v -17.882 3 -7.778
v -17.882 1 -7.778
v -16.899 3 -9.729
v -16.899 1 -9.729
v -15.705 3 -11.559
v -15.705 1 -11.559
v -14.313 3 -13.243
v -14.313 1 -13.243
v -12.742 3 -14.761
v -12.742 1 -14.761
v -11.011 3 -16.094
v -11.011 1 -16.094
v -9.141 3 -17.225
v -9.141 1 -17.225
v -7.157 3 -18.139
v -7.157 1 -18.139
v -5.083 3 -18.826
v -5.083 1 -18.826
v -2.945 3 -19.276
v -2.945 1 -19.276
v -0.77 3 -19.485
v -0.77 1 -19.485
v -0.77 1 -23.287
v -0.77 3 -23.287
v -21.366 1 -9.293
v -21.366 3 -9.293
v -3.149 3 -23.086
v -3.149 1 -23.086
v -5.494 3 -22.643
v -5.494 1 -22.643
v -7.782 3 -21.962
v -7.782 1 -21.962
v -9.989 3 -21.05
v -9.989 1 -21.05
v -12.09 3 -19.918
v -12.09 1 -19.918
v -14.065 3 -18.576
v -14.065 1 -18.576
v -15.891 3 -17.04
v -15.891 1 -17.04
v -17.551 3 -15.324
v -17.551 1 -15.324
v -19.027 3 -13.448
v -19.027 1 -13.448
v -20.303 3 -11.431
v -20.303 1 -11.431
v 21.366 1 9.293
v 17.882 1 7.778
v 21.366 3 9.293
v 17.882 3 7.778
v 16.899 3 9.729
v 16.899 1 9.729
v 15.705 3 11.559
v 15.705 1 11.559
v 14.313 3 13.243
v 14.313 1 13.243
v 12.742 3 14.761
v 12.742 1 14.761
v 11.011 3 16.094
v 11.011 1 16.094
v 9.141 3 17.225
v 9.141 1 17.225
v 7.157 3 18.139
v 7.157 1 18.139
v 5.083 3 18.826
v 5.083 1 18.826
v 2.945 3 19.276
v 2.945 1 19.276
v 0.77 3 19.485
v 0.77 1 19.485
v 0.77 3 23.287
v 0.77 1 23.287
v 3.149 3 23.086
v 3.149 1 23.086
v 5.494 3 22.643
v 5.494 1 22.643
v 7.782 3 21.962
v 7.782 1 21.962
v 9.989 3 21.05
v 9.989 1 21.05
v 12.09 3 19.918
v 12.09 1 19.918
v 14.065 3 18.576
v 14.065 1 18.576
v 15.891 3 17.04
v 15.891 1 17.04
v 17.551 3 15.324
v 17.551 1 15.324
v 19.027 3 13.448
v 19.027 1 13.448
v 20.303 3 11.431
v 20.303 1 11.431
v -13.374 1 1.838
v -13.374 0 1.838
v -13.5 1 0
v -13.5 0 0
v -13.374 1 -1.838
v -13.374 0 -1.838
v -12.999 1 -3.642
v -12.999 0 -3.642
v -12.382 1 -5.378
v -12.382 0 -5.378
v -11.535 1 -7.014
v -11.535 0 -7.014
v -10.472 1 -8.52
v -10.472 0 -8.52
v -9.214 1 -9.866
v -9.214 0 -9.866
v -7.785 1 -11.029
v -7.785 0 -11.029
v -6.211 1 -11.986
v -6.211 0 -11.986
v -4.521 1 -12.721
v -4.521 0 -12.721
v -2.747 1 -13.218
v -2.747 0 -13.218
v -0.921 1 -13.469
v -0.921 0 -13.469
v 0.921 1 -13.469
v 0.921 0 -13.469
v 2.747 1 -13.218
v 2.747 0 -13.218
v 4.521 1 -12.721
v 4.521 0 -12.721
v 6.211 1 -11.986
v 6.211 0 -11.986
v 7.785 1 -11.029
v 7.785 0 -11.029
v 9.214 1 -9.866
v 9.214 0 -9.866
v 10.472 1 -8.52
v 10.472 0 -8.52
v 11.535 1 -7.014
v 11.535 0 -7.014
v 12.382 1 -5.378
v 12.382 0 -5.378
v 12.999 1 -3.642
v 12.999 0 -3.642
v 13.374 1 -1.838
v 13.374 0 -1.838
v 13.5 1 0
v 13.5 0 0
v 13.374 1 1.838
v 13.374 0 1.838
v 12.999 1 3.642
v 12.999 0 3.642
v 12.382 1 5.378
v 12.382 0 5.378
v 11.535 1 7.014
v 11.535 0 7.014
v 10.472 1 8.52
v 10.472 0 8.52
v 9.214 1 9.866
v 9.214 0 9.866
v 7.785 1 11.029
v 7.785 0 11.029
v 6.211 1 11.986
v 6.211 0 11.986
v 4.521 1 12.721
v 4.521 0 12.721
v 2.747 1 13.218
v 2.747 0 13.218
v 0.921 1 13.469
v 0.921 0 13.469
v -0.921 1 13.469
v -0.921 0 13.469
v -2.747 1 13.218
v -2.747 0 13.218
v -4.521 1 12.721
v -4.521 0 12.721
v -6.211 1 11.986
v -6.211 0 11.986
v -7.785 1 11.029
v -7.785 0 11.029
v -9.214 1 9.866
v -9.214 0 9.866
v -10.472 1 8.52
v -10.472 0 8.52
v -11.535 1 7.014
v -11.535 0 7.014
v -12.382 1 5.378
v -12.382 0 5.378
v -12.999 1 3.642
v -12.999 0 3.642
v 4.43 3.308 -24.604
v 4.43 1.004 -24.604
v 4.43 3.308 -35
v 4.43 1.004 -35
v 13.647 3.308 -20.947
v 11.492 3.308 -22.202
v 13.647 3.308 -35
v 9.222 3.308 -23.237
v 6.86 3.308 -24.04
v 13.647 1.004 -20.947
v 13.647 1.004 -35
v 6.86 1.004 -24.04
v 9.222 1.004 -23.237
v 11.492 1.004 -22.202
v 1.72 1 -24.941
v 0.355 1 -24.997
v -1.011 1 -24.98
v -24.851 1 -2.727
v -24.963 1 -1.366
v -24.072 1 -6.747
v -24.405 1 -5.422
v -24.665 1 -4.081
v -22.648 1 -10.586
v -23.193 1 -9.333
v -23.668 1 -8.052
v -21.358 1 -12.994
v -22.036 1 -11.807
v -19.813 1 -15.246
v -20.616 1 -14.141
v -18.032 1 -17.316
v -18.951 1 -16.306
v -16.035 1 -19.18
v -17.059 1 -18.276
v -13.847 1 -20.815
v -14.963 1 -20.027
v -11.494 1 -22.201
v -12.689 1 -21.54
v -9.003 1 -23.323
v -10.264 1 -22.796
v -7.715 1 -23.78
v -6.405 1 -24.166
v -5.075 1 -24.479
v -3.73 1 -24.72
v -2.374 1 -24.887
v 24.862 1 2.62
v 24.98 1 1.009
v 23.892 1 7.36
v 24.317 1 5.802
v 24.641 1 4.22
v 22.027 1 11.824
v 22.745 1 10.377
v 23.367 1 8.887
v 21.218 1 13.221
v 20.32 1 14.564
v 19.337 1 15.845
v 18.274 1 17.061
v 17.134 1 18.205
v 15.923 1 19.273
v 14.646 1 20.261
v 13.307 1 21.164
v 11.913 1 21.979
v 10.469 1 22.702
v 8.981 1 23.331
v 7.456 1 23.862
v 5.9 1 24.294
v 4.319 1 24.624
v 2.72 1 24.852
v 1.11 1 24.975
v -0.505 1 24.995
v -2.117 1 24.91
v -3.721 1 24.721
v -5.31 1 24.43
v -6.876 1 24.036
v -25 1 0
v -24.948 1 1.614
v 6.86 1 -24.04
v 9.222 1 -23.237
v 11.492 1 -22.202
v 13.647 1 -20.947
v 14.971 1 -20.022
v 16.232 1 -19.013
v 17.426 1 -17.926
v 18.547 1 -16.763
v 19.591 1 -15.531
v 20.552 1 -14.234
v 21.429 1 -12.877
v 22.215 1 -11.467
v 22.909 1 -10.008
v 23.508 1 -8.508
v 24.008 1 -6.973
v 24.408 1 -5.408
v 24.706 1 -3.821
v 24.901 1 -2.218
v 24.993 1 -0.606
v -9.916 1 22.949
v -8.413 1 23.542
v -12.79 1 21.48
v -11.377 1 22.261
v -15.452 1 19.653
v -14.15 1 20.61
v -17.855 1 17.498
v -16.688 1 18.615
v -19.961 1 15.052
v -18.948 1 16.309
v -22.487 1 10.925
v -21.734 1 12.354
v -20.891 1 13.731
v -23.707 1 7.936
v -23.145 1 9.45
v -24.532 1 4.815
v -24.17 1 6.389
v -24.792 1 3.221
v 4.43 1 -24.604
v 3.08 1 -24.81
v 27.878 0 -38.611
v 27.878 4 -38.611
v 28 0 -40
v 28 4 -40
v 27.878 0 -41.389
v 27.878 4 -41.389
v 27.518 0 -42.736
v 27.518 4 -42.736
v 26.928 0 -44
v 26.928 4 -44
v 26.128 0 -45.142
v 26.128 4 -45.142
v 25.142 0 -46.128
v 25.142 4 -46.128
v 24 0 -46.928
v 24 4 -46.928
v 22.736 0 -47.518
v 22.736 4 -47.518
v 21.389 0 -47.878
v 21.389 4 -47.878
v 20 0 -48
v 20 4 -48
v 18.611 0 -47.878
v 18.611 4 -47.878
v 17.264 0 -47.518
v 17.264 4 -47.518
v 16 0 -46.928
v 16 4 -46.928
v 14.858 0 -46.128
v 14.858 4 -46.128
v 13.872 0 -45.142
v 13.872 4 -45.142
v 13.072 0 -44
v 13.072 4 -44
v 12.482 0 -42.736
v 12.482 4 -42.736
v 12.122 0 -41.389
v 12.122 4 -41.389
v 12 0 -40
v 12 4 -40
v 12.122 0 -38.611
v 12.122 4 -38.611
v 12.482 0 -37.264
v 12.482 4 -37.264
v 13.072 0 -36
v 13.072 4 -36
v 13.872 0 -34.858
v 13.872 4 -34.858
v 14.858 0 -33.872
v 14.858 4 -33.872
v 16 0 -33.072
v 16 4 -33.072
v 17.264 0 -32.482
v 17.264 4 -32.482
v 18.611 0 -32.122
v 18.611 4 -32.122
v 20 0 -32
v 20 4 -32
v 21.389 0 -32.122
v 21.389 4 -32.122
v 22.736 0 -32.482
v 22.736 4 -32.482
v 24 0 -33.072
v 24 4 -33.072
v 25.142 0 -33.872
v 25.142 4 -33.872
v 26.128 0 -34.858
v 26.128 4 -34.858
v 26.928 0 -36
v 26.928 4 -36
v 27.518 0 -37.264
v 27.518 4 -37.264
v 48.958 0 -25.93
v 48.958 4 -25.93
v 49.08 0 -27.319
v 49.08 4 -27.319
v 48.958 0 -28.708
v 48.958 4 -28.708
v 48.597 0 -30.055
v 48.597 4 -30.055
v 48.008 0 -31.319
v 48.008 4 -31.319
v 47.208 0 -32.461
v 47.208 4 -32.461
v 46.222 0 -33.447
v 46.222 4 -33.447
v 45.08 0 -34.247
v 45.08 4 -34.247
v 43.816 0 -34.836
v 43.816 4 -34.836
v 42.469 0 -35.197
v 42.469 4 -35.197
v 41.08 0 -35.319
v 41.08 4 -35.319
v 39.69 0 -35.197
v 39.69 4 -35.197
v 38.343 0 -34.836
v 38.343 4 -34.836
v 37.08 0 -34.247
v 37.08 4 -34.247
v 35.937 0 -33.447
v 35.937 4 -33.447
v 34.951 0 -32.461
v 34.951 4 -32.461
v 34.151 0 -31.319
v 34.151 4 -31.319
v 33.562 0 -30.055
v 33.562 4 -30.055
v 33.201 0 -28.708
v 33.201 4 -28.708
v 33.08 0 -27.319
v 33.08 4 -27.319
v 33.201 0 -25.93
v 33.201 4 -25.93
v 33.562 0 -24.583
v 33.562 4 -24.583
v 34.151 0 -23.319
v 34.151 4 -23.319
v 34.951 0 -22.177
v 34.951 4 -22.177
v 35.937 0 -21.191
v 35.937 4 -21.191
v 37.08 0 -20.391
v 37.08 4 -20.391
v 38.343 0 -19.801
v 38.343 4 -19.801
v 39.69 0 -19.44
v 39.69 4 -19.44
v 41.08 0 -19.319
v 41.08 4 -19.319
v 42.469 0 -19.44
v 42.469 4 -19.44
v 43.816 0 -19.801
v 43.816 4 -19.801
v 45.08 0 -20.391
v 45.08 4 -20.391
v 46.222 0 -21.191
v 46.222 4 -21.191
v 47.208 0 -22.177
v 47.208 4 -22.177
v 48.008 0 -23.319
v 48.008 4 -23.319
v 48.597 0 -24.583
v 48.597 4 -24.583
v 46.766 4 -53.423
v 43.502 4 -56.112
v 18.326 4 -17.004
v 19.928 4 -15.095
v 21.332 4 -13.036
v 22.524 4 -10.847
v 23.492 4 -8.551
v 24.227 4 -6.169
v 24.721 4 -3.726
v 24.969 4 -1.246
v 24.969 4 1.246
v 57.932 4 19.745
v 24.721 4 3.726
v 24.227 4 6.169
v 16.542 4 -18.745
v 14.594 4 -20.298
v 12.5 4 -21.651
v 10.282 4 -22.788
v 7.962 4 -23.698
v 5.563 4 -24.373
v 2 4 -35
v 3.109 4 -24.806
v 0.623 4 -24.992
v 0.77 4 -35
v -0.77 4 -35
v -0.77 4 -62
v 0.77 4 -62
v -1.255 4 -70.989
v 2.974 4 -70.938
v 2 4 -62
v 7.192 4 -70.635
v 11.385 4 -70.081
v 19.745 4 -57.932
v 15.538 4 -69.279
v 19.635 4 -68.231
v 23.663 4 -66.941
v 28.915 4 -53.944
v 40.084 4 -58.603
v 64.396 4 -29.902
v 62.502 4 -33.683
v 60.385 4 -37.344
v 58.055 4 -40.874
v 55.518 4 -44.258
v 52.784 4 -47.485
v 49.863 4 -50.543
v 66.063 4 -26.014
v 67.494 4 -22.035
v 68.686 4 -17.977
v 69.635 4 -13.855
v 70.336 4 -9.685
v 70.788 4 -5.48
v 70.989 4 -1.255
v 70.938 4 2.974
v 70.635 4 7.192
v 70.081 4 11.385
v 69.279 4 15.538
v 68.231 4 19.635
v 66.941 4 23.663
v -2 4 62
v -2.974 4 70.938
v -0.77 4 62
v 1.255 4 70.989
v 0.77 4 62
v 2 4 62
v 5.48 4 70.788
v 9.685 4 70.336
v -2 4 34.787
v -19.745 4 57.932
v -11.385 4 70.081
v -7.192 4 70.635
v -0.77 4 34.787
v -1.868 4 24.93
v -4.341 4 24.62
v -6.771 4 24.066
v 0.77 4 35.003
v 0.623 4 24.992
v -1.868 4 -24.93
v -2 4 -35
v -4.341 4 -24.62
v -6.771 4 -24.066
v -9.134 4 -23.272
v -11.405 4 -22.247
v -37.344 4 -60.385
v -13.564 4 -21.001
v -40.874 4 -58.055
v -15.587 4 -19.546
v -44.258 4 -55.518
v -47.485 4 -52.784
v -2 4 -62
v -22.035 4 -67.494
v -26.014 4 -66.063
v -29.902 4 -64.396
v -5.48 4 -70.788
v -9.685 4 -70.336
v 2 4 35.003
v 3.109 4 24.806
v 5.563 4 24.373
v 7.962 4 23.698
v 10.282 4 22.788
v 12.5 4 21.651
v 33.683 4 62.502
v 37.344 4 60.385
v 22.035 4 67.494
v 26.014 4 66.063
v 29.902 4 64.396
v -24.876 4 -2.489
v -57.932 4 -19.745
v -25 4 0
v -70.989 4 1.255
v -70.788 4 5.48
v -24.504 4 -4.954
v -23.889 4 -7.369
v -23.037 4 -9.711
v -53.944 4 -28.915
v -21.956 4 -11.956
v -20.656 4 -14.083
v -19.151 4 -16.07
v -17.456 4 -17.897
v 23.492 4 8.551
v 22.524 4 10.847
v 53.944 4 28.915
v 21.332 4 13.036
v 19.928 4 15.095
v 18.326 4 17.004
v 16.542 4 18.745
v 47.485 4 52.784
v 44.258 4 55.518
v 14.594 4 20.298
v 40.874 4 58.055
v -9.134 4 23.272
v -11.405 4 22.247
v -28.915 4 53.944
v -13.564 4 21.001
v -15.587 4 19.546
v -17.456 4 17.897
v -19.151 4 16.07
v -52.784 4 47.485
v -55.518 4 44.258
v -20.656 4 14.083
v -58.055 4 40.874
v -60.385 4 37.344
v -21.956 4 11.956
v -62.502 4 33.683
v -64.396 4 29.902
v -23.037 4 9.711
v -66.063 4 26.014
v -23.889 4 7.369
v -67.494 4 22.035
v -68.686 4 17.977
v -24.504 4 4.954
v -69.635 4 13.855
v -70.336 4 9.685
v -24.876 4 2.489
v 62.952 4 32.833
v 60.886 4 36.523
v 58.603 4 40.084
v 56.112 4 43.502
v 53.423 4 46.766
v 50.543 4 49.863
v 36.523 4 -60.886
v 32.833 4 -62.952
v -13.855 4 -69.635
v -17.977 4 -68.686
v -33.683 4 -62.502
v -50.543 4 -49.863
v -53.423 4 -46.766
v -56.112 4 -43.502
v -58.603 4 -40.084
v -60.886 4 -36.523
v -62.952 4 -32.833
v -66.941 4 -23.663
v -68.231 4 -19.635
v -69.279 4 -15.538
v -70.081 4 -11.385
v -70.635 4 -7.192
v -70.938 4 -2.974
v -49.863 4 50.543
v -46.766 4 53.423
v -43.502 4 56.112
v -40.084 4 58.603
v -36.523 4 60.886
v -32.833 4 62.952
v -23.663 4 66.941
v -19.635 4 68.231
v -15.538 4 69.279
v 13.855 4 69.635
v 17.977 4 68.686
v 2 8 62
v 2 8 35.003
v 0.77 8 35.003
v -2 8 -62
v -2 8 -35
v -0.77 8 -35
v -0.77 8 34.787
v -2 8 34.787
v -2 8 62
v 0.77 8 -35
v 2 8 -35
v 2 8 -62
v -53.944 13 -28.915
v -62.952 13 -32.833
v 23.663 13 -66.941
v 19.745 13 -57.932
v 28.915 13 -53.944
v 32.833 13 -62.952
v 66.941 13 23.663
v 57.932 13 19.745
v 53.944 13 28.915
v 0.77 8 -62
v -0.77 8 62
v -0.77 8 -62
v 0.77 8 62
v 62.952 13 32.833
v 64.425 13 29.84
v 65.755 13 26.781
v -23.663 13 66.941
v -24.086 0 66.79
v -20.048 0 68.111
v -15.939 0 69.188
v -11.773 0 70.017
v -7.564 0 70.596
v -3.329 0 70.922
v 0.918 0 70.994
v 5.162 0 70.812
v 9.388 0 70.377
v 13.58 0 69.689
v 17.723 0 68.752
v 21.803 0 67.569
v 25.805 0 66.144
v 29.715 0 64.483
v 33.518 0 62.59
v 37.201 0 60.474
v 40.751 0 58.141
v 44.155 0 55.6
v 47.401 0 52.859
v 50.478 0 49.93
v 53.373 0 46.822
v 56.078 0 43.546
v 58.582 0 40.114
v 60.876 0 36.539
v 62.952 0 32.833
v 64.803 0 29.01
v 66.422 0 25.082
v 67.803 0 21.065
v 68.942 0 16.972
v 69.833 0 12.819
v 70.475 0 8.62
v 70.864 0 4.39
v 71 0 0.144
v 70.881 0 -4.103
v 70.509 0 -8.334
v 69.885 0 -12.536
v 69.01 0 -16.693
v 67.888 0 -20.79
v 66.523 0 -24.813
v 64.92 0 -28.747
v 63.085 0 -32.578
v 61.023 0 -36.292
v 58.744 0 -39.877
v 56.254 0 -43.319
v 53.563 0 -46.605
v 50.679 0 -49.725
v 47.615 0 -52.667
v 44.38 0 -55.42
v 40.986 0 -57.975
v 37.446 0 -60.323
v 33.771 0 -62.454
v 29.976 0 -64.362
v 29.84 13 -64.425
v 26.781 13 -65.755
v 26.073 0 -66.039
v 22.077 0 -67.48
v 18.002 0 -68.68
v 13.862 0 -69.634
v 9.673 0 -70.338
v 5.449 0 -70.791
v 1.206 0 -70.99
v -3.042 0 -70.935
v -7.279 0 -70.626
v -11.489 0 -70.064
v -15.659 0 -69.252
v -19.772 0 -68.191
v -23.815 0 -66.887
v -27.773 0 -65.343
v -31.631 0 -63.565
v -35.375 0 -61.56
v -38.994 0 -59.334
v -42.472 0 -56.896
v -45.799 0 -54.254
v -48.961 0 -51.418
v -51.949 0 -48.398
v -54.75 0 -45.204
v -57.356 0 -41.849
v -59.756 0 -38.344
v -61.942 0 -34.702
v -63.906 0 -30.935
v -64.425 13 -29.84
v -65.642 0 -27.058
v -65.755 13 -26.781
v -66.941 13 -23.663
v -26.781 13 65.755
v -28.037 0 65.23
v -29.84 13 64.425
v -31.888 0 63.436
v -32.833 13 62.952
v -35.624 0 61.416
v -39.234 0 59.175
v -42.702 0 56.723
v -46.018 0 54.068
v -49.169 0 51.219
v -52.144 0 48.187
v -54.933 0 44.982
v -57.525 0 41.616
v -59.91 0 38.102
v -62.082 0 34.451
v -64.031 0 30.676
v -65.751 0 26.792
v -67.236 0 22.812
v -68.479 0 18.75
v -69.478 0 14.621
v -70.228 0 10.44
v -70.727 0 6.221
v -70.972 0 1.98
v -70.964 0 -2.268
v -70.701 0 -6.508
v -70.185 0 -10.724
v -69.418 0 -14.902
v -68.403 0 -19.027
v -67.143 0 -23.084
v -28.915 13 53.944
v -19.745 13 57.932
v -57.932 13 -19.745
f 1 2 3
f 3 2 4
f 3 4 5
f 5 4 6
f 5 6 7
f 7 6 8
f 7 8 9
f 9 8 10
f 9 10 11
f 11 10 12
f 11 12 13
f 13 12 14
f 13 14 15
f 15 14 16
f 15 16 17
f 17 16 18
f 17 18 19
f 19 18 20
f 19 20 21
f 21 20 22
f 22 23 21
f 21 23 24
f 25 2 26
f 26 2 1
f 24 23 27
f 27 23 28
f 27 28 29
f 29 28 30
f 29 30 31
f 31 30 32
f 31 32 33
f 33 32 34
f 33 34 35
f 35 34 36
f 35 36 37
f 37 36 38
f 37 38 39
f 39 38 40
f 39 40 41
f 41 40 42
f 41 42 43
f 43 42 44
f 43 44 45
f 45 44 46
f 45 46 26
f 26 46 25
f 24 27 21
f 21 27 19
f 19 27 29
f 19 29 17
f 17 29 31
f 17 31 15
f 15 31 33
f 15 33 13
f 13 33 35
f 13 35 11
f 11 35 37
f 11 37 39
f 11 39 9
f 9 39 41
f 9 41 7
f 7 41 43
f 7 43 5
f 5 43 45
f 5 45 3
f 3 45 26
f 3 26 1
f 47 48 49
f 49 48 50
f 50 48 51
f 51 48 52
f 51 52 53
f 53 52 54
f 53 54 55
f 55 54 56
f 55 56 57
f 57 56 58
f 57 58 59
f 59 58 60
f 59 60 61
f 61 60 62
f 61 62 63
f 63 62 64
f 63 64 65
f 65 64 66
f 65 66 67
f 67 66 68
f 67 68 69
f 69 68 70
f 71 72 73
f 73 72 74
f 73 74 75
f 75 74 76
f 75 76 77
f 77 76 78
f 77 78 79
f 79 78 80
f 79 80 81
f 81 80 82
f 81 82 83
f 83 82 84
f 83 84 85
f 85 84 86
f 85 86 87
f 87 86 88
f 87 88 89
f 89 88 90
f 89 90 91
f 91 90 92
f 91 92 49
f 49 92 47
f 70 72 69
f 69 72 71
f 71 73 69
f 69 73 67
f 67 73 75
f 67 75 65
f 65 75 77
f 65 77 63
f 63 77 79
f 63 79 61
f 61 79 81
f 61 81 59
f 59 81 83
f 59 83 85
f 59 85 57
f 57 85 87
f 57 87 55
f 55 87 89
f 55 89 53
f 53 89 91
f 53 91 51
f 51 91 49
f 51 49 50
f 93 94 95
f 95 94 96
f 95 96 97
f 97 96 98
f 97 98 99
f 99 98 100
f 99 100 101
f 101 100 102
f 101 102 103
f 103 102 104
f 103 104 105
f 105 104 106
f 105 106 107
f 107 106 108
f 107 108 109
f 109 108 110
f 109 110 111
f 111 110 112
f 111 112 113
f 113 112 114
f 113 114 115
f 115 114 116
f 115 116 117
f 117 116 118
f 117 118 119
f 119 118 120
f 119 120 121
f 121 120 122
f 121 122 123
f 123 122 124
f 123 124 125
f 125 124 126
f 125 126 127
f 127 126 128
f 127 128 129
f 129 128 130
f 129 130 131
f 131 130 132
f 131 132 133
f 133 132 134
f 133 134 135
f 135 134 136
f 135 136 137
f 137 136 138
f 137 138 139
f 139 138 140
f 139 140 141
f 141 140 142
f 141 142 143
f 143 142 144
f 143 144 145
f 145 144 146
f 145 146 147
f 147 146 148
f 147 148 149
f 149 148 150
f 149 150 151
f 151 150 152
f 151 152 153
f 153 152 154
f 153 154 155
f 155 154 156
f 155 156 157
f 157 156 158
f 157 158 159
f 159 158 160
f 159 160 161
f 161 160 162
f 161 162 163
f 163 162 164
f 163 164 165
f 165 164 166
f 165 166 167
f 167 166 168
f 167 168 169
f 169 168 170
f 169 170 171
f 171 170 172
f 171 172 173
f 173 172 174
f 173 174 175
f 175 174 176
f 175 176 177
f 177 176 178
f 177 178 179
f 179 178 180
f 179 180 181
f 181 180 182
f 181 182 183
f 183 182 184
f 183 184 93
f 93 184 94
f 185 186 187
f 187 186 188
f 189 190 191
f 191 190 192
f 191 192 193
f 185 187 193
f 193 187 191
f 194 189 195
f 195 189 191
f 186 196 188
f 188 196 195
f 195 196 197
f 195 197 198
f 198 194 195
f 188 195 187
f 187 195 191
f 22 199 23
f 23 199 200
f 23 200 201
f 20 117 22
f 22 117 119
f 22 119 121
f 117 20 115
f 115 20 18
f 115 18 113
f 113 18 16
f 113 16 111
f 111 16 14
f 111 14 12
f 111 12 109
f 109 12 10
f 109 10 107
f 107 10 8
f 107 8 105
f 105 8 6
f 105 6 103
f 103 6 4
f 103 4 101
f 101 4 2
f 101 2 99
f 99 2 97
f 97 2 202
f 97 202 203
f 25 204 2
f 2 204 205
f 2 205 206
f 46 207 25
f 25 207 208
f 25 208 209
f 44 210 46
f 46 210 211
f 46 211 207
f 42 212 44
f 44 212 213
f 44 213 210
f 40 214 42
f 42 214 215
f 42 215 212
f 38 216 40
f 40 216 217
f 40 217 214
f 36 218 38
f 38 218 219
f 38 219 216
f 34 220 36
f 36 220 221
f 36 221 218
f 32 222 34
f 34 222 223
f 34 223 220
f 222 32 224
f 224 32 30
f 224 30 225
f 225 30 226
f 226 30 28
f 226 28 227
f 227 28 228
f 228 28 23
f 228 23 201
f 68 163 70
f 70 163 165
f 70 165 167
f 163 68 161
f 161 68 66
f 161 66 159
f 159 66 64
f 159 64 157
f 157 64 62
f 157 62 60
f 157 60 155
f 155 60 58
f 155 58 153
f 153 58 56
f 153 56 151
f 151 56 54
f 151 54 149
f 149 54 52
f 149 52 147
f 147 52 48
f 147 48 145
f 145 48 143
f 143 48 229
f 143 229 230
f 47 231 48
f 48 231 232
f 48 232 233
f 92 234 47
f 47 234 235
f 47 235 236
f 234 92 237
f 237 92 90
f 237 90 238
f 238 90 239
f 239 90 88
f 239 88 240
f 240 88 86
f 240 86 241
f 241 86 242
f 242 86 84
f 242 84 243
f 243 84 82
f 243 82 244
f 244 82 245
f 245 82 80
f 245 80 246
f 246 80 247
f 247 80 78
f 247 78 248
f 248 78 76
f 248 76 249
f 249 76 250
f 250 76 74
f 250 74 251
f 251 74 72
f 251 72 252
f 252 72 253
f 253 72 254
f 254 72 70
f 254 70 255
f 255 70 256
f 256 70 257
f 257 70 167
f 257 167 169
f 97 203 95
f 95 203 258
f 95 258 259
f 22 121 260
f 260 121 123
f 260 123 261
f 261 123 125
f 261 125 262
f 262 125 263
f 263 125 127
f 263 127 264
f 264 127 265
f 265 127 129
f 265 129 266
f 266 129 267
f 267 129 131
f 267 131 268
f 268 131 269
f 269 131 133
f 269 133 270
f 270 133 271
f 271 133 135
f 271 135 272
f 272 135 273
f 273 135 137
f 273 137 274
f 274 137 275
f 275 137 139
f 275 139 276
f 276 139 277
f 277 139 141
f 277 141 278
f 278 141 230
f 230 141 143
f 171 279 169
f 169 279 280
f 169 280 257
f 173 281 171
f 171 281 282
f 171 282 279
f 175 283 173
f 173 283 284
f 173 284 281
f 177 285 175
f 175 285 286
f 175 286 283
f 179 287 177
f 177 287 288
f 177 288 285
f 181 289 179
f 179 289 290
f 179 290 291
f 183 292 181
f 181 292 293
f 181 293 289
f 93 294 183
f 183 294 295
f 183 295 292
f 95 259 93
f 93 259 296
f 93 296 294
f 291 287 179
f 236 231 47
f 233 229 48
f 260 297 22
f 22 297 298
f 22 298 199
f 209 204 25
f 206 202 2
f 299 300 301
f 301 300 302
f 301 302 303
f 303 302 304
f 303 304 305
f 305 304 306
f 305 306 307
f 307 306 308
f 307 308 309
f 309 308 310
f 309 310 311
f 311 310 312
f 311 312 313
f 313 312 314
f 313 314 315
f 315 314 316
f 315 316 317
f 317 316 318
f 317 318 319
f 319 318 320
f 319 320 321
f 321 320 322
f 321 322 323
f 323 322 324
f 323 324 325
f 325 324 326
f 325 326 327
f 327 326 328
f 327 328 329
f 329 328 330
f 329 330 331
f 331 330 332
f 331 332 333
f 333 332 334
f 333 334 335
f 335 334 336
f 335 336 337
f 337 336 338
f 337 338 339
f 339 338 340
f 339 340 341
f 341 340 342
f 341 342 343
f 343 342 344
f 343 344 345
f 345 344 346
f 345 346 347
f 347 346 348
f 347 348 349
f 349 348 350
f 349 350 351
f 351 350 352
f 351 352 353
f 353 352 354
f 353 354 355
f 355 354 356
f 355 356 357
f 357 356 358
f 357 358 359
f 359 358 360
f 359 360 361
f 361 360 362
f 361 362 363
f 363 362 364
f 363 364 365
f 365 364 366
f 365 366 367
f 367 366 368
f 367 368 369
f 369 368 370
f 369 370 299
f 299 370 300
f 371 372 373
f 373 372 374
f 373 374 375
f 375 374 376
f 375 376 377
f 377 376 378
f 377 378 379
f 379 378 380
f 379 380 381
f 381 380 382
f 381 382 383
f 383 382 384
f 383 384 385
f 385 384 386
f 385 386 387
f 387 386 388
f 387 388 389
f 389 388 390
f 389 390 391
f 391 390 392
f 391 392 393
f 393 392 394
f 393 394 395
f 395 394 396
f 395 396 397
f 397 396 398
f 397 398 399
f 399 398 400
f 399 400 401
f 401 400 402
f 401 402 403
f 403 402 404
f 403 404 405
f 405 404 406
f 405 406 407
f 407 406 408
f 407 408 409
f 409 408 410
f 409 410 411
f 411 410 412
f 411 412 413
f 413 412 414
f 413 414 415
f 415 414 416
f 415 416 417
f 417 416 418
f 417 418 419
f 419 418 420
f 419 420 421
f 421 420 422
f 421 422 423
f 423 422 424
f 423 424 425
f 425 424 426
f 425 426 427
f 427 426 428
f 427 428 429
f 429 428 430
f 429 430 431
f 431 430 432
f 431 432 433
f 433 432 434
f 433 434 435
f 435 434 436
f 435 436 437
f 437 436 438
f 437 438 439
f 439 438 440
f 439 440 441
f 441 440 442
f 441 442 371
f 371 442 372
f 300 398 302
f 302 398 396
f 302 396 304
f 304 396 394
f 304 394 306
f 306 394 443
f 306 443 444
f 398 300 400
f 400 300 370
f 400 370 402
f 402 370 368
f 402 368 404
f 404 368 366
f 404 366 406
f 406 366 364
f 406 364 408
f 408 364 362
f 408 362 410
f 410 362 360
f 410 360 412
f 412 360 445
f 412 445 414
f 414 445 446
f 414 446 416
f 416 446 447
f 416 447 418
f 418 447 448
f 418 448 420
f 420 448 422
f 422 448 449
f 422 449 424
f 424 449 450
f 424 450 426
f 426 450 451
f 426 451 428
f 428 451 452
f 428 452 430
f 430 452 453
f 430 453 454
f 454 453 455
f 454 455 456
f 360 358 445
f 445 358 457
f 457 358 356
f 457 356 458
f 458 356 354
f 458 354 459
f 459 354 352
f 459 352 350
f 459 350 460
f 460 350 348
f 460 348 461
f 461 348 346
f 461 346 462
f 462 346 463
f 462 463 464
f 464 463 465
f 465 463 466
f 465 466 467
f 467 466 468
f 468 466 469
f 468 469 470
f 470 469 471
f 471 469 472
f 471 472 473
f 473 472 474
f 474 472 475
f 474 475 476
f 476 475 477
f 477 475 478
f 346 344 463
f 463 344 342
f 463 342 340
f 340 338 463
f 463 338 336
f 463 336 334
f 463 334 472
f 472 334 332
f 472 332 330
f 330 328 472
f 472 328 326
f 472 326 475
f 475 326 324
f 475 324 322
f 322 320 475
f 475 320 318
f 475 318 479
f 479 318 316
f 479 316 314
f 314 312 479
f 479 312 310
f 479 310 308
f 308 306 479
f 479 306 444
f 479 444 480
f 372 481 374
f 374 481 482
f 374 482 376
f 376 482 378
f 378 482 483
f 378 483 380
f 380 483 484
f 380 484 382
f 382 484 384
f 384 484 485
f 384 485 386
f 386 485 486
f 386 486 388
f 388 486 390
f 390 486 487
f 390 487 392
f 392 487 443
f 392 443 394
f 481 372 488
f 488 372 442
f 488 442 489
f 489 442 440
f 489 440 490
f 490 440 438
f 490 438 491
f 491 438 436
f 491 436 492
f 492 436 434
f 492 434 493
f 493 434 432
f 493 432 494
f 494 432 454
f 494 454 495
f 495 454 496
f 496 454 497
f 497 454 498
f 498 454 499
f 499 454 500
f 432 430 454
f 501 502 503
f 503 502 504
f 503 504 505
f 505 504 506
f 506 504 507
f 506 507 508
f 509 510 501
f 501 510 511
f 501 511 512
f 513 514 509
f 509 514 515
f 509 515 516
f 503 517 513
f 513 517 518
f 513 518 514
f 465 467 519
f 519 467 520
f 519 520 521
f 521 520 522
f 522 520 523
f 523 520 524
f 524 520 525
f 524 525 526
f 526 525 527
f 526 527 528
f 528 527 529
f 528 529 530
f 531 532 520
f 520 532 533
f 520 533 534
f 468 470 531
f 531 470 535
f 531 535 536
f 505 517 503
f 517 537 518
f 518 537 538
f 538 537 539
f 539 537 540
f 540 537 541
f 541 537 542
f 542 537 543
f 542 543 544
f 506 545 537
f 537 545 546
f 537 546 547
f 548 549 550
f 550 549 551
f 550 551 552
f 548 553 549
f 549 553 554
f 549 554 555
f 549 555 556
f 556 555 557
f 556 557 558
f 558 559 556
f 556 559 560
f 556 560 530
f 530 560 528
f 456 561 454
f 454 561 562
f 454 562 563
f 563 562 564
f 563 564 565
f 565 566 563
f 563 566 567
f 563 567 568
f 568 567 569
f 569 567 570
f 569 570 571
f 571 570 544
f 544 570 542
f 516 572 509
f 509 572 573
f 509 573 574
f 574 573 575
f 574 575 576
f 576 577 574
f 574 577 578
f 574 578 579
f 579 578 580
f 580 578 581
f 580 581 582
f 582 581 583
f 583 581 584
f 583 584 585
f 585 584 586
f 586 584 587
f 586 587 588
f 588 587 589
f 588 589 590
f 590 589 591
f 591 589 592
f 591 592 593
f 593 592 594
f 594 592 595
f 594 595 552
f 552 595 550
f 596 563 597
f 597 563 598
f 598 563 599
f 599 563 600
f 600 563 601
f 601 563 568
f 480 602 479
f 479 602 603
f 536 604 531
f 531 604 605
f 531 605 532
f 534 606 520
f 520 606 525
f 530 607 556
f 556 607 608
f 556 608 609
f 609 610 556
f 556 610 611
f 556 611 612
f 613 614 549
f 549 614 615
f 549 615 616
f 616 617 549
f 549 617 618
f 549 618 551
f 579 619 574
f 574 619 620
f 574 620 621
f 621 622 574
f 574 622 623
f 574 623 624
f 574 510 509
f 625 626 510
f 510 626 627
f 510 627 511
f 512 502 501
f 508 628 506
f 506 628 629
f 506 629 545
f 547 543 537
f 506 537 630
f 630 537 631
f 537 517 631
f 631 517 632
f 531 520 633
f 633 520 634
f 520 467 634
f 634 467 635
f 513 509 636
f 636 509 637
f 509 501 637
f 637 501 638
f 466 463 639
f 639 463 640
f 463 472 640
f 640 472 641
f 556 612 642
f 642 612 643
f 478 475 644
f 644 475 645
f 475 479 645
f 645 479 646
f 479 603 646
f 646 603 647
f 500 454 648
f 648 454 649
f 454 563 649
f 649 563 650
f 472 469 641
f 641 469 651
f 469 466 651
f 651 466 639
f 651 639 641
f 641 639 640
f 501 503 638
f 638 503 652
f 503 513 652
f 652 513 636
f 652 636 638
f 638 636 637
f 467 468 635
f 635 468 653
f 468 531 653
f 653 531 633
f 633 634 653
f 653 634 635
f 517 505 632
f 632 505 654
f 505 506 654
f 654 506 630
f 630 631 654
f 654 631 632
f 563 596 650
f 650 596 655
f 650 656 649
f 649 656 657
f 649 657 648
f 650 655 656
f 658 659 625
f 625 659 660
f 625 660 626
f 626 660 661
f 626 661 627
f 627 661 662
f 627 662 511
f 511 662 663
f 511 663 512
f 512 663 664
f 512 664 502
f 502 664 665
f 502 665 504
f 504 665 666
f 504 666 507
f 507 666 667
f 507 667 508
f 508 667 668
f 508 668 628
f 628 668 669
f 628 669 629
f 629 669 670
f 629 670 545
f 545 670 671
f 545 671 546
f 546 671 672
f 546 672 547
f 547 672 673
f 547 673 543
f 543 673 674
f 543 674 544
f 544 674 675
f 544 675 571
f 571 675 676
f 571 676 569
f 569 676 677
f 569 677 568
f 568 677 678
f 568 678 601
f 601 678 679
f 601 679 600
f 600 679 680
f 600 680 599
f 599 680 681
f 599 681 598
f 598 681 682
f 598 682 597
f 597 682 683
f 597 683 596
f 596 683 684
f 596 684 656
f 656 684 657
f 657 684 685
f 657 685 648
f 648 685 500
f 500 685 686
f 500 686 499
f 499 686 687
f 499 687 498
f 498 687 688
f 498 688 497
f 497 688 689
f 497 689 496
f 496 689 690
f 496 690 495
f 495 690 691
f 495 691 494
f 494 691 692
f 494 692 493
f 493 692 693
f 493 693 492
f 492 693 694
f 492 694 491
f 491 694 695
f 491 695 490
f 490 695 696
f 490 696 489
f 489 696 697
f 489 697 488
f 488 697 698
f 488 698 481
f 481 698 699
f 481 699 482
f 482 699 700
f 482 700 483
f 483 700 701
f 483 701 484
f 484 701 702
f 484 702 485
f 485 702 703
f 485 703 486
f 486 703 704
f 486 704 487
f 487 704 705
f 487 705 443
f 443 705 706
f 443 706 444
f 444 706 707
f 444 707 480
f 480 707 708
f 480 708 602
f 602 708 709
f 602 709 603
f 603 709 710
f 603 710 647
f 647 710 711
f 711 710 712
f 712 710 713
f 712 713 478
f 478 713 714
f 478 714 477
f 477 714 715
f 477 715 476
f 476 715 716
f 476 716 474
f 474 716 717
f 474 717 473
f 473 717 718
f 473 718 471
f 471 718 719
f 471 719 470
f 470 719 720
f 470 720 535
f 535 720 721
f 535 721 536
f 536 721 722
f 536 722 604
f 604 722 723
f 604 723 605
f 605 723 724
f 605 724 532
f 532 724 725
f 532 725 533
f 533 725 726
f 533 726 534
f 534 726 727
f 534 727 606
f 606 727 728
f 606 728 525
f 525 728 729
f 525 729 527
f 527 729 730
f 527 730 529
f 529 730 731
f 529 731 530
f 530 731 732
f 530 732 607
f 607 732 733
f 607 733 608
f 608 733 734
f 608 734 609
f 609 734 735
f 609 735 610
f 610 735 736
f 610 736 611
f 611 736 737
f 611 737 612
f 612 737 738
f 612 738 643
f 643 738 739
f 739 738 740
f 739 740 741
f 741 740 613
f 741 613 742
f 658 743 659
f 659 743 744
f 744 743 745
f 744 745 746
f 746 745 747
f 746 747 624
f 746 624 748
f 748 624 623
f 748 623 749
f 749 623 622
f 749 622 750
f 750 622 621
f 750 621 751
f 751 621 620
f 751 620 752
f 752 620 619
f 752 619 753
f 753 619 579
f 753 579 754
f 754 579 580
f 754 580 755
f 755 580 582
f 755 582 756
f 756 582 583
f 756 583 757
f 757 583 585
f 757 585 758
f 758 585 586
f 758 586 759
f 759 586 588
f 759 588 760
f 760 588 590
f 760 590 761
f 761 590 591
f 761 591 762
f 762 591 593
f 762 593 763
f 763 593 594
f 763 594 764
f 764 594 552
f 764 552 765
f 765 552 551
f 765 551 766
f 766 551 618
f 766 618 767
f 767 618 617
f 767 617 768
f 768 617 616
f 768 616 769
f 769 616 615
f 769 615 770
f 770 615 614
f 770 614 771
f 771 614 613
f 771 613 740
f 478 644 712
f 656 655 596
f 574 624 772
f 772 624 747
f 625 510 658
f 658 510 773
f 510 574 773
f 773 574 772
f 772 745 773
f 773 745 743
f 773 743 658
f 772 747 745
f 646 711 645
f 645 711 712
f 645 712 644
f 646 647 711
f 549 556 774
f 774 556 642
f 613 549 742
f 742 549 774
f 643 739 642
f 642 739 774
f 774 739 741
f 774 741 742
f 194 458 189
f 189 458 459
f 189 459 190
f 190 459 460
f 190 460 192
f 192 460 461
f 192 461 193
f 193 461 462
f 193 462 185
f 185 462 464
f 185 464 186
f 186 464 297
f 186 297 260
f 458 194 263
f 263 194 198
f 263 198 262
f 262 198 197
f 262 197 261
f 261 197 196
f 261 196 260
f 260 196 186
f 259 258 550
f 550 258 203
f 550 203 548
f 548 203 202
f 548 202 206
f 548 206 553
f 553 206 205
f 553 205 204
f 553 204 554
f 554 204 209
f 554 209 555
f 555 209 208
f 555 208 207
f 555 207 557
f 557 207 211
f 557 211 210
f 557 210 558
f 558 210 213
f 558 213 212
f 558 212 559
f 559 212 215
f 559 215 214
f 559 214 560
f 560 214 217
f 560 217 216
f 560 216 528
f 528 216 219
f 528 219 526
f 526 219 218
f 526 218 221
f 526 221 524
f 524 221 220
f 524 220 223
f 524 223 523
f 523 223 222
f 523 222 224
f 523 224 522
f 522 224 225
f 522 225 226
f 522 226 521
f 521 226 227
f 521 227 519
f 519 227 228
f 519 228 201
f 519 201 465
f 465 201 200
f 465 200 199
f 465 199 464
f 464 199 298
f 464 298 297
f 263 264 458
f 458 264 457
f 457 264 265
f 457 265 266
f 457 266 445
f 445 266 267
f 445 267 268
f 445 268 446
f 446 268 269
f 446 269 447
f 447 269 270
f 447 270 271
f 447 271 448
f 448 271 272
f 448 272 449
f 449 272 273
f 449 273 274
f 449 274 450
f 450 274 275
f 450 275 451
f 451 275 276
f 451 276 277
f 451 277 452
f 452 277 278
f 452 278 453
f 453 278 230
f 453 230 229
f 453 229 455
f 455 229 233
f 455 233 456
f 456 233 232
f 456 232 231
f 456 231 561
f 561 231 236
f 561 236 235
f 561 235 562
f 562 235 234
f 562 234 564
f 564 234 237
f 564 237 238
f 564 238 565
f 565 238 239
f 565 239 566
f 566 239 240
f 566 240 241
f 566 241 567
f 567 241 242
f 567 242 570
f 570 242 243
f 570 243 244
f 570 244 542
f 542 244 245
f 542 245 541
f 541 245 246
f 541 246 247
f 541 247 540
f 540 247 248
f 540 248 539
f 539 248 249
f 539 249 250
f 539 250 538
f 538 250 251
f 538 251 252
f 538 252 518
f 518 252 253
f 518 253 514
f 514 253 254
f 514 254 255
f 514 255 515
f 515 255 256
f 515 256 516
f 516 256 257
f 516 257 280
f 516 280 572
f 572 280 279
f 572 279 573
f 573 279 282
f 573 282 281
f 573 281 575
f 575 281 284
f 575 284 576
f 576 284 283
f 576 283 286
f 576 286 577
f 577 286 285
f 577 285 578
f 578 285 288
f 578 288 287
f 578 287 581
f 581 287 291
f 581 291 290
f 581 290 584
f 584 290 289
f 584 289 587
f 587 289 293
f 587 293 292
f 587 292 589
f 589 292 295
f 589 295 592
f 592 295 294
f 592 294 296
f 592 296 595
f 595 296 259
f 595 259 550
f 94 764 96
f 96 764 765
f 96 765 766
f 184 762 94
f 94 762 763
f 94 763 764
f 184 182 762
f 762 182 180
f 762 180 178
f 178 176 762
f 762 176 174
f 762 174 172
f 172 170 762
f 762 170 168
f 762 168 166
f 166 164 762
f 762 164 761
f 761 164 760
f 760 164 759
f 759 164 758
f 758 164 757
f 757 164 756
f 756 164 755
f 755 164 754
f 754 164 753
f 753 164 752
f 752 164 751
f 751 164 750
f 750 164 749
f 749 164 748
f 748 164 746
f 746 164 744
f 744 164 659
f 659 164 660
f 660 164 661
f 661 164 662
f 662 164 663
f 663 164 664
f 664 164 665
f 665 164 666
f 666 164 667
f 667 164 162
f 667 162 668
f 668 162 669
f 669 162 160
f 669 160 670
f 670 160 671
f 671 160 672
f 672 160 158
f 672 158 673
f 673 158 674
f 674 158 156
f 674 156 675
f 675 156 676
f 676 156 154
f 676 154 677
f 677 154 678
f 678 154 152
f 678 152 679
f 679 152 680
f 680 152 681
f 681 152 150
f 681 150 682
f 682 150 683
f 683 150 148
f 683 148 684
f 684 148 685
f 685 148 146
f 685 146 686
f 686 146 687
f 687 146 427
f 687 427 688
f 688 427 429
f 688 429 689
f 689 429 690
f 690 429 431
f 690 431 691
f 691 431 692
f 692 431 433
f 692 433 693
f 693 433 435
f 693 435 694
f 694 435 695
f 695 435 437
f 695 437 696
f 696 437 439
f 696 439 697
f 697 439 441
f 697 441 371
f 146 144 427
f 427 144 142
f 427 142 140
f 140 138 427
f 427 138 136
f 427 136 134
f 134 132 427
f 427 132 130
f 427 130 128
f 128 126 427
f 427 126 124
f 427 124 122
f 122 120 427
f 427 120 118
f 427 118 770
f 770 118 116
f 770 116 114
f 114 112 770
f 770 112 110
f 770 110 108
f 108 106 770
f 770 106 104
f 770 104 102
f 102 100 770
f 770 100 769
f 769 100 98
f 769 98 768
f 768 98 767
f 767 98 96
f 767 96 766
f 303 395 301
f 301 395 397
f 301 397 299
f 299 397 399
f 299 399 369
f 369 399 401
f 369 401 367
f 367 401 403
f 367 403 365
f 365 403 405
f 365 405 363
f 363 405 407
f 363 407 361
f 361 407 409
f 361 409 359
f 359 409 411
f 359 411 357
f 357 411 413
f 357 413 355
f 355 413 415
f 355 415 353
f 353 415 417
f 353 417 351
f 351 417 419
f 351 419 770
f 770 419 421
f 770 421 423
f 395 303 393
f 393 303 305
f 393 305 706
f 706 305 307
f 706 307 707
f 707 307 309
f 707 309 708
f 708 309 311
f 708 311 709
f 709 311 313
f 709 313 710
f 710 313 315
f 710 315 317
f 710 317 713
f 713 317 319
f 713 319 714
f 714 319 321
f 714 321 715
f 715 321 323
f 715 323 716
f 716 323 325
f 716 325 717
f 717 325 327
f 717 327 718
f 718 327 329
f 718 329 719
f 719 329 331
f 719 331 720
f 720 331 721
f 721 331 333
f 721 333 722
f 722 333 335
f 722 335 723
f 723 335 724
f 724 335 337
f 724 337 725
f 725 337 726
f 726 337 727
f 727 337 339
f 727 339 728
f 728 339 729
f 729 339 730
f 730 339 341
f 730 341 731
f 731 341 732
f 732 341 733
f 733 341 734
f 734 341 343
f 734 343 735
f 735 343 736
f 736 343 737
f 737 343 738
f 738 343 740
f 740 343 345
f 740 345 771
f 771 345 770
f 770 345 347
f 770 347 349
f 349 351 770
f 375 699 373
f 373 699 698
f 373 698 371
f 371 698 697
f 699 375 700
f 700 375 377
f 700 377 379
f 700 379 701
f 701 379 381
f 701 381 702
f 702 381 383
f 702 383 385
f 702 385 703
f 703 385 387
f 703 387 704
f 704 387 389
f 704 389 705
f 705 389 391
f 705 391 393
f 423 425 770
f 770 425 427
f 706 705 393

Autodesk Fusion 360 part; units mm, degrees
sketch "Sketch1" plane through (0, 0, 0) normal (0, 1, 0) x (1, 0, 0)
  circle A0 centre (0, 0) radius 13.5
  circle A1 centre (0, 0) radius 19.35
  circle A2 centre (0, 0) radius 19.5
  circle A3 centre (0, 0) radius 23.3
  circle A4 centre (0, 0) radius 71
  line L0 (0, 0) -> (0, 71)
  line L1 (0, 0) -> (0, -71)
  line L2 (0, 0) -> (0.77, 0)
  line L3 (0.77, 0) -> (0.77, -76)
  line L4 (0.77, -76) -> (0, -76)
  line L5 (0, -76) -> (0, 0)
  line L6 (0, 0) -> (-0.77, 0)
  line L7 (-0.77, 0) -> (-0.77, -76)
  line L8 (-0.77, -76) -> (0, -76)
  line L9 (0, -76) -> (0, 0)
  line L10 (-0.77, 0) -> (0, 0)
  line L11 (0, 0) -> (0, 73)
  line L12 (0, 73) -> (-0.77, 73)
  line L13 (-0.77, 73) -> (-0.77, 0)
  line L14 (0, 73) -> (0.77, 73)
  line L15 (0.77, 73) -> (0.77, 0)
  line L16 (0.77, 0) -> (0, 0)
  line L17 (0, 0) -> (0, 73)
  line L18 (0, 0) -> (0, 35)
  line L19 (0, 0) -> (0, -35)
  line L20 (-0.77, 35) -> (-2, 35)
  line L21 (-2, 35) -> (-2, 62)
  line L22 (-2, 62) -> (-0.77, 62)
  line L23 (-0.77, 62) -> (-0.77, 35)
  line L24 (0.77, 35) -> (2, 35)
  line L25 (2, 35) -> (2, 62)
  line L26 (2, 62) -> (0.77, 62)
  line L27 (0.77, 62) -> (0.77, 35)
  line L28 (0.77, -35.0032) -> (2, -35.0032)
  line L29 (2, -35.0032) -> (2, -62)
  line L30 (2, -62) -> (0.77, -62)
  line L31 (0.77, -62) -> (0.77, -35.0032)
  line L32 (-0.77, -34.7868) -> (-2, -34.7868)
  line L33 (-2, -34.7868) -> (-2, -62)
  line L34 (-2, -62) -> (-0.77, -62)
  line L35 (-0.77, -62) -> (-0.77, -34.7868)
  line L36 (0, 0) -> (65.1081, -28.3184)
  line L37 (0, 0) -> (-28.3184, -65.1081)
  line L38 (-28.3184, -65.1081) -> (28.3184, 65.1081)
  line L39 (28.3184, 65.1081) -> (24.3299, 55.938)
  line L40 (0, 0) -> (-65.1081, 28.3184)
  line L41 (-65.1081, 28.3184) -> (-55.938, 24.3299)
  line L42 (65.1081, -28.3184) -> (55.938, -24.3299)
  line L43 (-28.3184, -65.1081) -> (-24.3299, -55.938)
  line L44 (-55.938, 24.3299) -> (-53.9437, 28.9149)
  line L45 (24.3299, 55.938) -> (28.9149, 53.9437)
  line L46 (55.938, -24.3299) -> (57.9322, -19.7448)
  line L47 (-24.3299, -55.938) -> (-19.7448, -57.9322)
  line L48 (-53.9437, 28.9149) -> (-62.9522, 32.8331)
  line L49 (-53.9437, 28.9149) -> (-57.9322, 19.7448)
  line L50 (-57.9322, 19.7448) -> (-66.9407, 23.663)
  line L51 (-24.3299, -55.938) -> (-28.9149, -53.9437)
  line L52 (-28.9149, -53.9437) -> (-32.8331, -62.9522)
  line L53 (-19.7448, -57.9322) -> (-23.663, -66.9407)
  line L54 (57.9322, -19.7448) -> (66.9407, -23.663)
  line L55 (55.938, -24.3299) -> (53.9437, -28.9149)
  line L56 (53.9437, -28.9149) -> (62.9522, -32.8331)
  line L57 (28.9149, 53.9437) -> (32.8331, 62.9522)
  line L58 (24.3299, 55.938) -> (19.7448, 57.9322)
  line L59 (19.7448, 57.9322) -> (23.663, 66.9407)
  circle A5 centre (0, 0) radius 25
  dimension "d1" = 27
  dimension "d2" = 38.7
  dimension "d3" = 39
  dimension "d4" = 46.6
  dimension "d5" = 142
  dimension "d6" = 0.77
  dimension "d7" = 0.77
  dimension "d8" = 35
  dimension "d9" = 35
  dimension "d10" = 10
  dimension "d11" = 10
  dimension "d12" = 10
  dimension "d13" = 10
  dimension "d14" = 5
  dimension "d15" = 5
  dimension "d16" = 5
  dimension "d17" = 5
  dimension "d18" = 10
  dimension "d19" = 5
  dimension "d20" = 5
  dimension "d21" = 5
  dimension "d22" = 50
extrude "Extrude1" add sketch "Sketch1" along normal blind 3 contours A4 L15 L24 L25 L26 L38 L58 L59 A5 | A4 L36 L38 L45 L46 L54 L57 A5 | A4 L3 L28 L29 L30 L36 L55 L56 A5 | A4 L0 L11 L15 L17 L18 L27 A5 | A4 L38 L39 L58 L59 | A4 L38 L39 L45 L57 | A4 L1 L3 L5 L9 L19 L31 A5 | A4 L36 L42 L46 L54 | A4 L36 L42 L55 L56 | A4 L0 L11 L13 L17 L18 L23 A5 | L15 L24 L25 L26 L27 | A4 L1 L5 L7 L9 L19 L35 A5 | L3 L28 L29 L30 L31 | A4 L13 L20 L21 L22 L40 L44 L48 L49 A5 | A4 L7 L32 L33 L34 L37 L38 L47 L53 A5 | A4 L37 L38 L40 L49 L50 L51 L52 A5 | L13 L20 L21 L22 L23 | L7 L32 L33 L34 L35 | A4 L40 L41 L49 L50 | A4 L40 L41 L44 L48 L49 | A4 L37 L38 L43 L47 L53 | A4 L37 L38 L43 L51 L52
extrude "Extrude2" add sketch "Sketch1" along normal blind 13 contours A4 L38 L39 L58 L59 | A4 L38 L39 L45 L57 | A4 L36 L42 L46 L54 | A4 L36 L42 L55 L56 | A4 L40 L41 L49 L50 | A4 L40 L41 L44 L48 L49 | A4 L37 L38 L43 L47 L53 | A4 L37 L38 L43 L51 L52
extrude "Extrude3" add sketch "Sketch1" along normal blind 8 contours L15 L24 L25 L26 L27 | L3 L28 L29 L30 L31 | L13 L20 L21 L22 L23 | L7 L32 L33 L34 L35
extrude "Extrude4" add 1 faces at (37.708, 3, 34.8341) along direction (0, 1, 0) blind 1
sketch "Sketch2" plane through (0, 4, 0) normal (0, 1, 0) x (-1, 0, 0)
  line L0 (-0.77, -62) -> (-2, -62)
  line L1 (-2, -62) -> (-2, -35)
  line L2 (-2, -35) -> (-0.77, -35)
  line L3 (-0.77, -35) -> (-0.77, -62)
  line L4 (0.77, 62) -> (2, 62)
  line L5 (2, 62) -> (2, 34.7868)
  line L6 (2, 34.7868) -> (0.77, 34.7868)
  line L7 (0.77, 34.7868) -> (0.77, 62)
  line L8 (0.77, -62) -> (0.77, -35)
  line L9 (0.77, -35) -> (2, -35)
  line L10 (2, -35) -> (2, -62)
  line L11 (2, -62) -> (0.77, -62)
  line L12 (-0.77, 62) -> (-0.77, 35.0032)
  line L13 (-0.77, 35.0032) -> (-2, 35.0032)
  line L14 (-2, 35.0032) -> (-2, 62)
  line L15 (-2, 62) -> (-0.77, 62)
  circle A0 centre (0, 0) radius 25
  line L16 (-62.9522, 32.8331) -> (-53.9437, 28.9149)
  line L17 (-53.9437, 28.9149) -> (-57.9322, 19.7448)
  line L18 (-57.9322, 19.7448) -> (-66.9407, 23.663)
  arc A1 (-66.9407, 23.663) -> (-32.8331, -62.9522) centre (0, 0) ccw
  line L19 (-32.8331, -62.9522) -> (-28.9149, -53.9437)
  line L20 (-28.9149, -53.9437) -> (-19.7448, -57.9322)
  line L21 (-19.7448, -57.9322) -> (-23.663, -66.9407)
  arc A2 (-23.663, -66.9407) -> (62.9522, -32.8331) centre (0, 0) ccw
  line L22 (62.9522, -32.8331) -> (53.9437, -28.9149)
  line L23 (53.9437, -28.9149) -> (57.9322, -19.7448)
  line L24 (57.9322, -19.7448) -> (66.9407, -23.663)
  arc A3 (66.9407, -23.663) -> (32.8331, 62.9522) centre (0, 0) ccw
  line L25 (32.8331, 62.9522) -> (28.9149, 53.9437)
  line L26 (28.9149, 53.9437) -> (19.7448, 57.9322)
  line L27 (19.7448, 57.9322) -> (23.663, 66.9407)
  arc A4 (23.663, 66.9407) -> (-62.9522, 32.8331) centre (0, 0) ccw
  line L28 (0, 0) -> (-20, -40)
  circle A5 centre (-20, -40) radius 8
  line L29 (-20, -40) -> (-12.8446, -43.5777)
  line L30 (-20, -40) -> (-54.5328, -19.2256)
  line L31 (-26.8552, -35.8761) -> (-34.2244, -31.4428)
  line L32 (-34.2244, -31.4428) -> (-41.0796, -27.3189)
  circle A6 centre (-41.0796, -27.3189) radius 8
  dimension "d31" = 16
  dimension "d32" = 40.3
  dimension "d33" = 8.6
  dimension "d34" = 8
  dimension "d35" = 16
extrude "Extrude5" cut sketch "Sketch2" against normal blind 36 contours L28 A5 L29 | L28 A5 L30 | A5 L29 L30 | L30 L32 A6 | L30 L32 A6
extrude "Extrude6" add sketch "Sketch1" along normal blind 1 contours A0 L3 L15 L36 L38 | A0 A1 L36 L38 | A0 L15 L38 | A0 A1 L15 L38 | A0 A1 L3 L36 | A0 L3 L36 | A0 L0 L11 L15 L17 L18 L38 | A0 A1 L0 L11 L15 L17 L18 | L2 L15 L16 L38 | A1 A2 L36 L38 | A1 A2 L15 L38 | A0 A1 L1 L3 L5 L9 L19 | A0 L1 L3 L5 L9 L19 L36 | L2 L3 L16 L36 | A1 A2 L3 L36 | A0 L0 L11 L13 L17 L18 L40 | A0 A1 L0 L11 L13 L17 L18 | A1 A2 L0 L11 L15 L17 L18 | L6 L7 L10 L37 L38 | A0 L1 L5 L7 L9 L19 L37 L38 | L6 L10 L13 L40 | A2 A3 L36 L38 | A2 A3 L15 L38 | A0 A1 L1 L5 L7 L9 L19 | A1 A2 L1 L3 L5 L9 L19 | A2 A3 L3 L36 | A0 L13 L40 | A0 A1 L13 L40 | A1 A2 L0 L11 L13 L17 L18 | A2 A3 L0 L11 L15 L17 L18 | A0 L7 L13 L37 L38 L40 | A0 L7 L37 L38 | A3 L36 L38 A5 | A3 L15 L38 A5 | A0 A1 L7 L37 L38 | A1 A2 L1 L5 L7 L9 L19 | A2 A3 L1 L3 L5 L9 L19 | A3 L3 L36 A5 | A0 A1 L37 L38 L40 | A1 A2 L13 L40 | A2 A3 L0 L11 L13 L17 L18 | A3 L0 L11 L15 L17 L18 A5 | A1 A2 L7 L37 L38 | A2 A3 L1 L5 L7 L9 L19 | A3 L1 L3 L5 L9 L19 A5 | A1 A2 L37 L38 L40 | A2 A3 L13 L40 | A3 L0 L11 L13 L17 L18 A5 | A2 A3 L7 L37 L38 | A3 L1 L5 L7 L9 L19 A5 | A2 A3 L37 L38 L40 | A3 L13 L40 A5 | A3 L7 L37 L38 A5 | A3 L37 L38 L40 A5
sketch "Sketch3" plane through (0, 0, 0) normal (0, 0, 1) x (1, 0, 0)
  line L0 (4.4303, 3.3085) -> (13.6469, 3.3085)
  line L1 (13.6469, 3.3085) -> (13.6469, 1.0043)
  line L2 (13.6469, 1.0043) -> (4.4303, 1.0043)
  line L3 (4.4303, 1.0043) -> (4.4303, 3.3085)
extrude "Extrude7" cut sketch "Sketch3" against normal blind 35
sketch "Sketch4" plane through (0, 1, 0) normal (0, 1, 0) x (-1, 0, 0)
  circle A0 centre (0, 0) radius 25
  circle A1 centre (-5.7905, -31.8479) radius 4.9823
sketch "Sketch5" plane through (0, 1, 0) normal (0, 1, 0) x (-1, 0, 0)
sketch "Sketch6" plane through (0, 0, 0) normal (0, 0, 1) x (1, 0, 0)
  circle A0 centre (0, 8.5) radius 1.5
  dimension "d42" = 3
extrude "Extrude8" cut sketch "Sketch1" along normal blind 28 contours A0 L3 L15 L36 L38 | A0 L15 L38 | A0 L3 L36 | A0 L0 L11 L15 L17 L18 L38 | L2 L15 L16 L38 | A0 L1 L3 L5 L9 L19 L36 | L2 L3 L16 L36 | A0 L0 L11 L13 L17 L18 L40 | L6 L7 L10 L37 L38 | A0 L1 L5 L7 L9 L19 L37 L38 | L6 L10 L13 L40 | A0 L13 L40 | A0 L7 L13 L37 L38 L40 | A0 L7 L37 L38
extrude "Extrude9" add sketch "Sketch1" along normal blind 3 contours A2 A3 L3 L36 | A2 A3 L13 L40
